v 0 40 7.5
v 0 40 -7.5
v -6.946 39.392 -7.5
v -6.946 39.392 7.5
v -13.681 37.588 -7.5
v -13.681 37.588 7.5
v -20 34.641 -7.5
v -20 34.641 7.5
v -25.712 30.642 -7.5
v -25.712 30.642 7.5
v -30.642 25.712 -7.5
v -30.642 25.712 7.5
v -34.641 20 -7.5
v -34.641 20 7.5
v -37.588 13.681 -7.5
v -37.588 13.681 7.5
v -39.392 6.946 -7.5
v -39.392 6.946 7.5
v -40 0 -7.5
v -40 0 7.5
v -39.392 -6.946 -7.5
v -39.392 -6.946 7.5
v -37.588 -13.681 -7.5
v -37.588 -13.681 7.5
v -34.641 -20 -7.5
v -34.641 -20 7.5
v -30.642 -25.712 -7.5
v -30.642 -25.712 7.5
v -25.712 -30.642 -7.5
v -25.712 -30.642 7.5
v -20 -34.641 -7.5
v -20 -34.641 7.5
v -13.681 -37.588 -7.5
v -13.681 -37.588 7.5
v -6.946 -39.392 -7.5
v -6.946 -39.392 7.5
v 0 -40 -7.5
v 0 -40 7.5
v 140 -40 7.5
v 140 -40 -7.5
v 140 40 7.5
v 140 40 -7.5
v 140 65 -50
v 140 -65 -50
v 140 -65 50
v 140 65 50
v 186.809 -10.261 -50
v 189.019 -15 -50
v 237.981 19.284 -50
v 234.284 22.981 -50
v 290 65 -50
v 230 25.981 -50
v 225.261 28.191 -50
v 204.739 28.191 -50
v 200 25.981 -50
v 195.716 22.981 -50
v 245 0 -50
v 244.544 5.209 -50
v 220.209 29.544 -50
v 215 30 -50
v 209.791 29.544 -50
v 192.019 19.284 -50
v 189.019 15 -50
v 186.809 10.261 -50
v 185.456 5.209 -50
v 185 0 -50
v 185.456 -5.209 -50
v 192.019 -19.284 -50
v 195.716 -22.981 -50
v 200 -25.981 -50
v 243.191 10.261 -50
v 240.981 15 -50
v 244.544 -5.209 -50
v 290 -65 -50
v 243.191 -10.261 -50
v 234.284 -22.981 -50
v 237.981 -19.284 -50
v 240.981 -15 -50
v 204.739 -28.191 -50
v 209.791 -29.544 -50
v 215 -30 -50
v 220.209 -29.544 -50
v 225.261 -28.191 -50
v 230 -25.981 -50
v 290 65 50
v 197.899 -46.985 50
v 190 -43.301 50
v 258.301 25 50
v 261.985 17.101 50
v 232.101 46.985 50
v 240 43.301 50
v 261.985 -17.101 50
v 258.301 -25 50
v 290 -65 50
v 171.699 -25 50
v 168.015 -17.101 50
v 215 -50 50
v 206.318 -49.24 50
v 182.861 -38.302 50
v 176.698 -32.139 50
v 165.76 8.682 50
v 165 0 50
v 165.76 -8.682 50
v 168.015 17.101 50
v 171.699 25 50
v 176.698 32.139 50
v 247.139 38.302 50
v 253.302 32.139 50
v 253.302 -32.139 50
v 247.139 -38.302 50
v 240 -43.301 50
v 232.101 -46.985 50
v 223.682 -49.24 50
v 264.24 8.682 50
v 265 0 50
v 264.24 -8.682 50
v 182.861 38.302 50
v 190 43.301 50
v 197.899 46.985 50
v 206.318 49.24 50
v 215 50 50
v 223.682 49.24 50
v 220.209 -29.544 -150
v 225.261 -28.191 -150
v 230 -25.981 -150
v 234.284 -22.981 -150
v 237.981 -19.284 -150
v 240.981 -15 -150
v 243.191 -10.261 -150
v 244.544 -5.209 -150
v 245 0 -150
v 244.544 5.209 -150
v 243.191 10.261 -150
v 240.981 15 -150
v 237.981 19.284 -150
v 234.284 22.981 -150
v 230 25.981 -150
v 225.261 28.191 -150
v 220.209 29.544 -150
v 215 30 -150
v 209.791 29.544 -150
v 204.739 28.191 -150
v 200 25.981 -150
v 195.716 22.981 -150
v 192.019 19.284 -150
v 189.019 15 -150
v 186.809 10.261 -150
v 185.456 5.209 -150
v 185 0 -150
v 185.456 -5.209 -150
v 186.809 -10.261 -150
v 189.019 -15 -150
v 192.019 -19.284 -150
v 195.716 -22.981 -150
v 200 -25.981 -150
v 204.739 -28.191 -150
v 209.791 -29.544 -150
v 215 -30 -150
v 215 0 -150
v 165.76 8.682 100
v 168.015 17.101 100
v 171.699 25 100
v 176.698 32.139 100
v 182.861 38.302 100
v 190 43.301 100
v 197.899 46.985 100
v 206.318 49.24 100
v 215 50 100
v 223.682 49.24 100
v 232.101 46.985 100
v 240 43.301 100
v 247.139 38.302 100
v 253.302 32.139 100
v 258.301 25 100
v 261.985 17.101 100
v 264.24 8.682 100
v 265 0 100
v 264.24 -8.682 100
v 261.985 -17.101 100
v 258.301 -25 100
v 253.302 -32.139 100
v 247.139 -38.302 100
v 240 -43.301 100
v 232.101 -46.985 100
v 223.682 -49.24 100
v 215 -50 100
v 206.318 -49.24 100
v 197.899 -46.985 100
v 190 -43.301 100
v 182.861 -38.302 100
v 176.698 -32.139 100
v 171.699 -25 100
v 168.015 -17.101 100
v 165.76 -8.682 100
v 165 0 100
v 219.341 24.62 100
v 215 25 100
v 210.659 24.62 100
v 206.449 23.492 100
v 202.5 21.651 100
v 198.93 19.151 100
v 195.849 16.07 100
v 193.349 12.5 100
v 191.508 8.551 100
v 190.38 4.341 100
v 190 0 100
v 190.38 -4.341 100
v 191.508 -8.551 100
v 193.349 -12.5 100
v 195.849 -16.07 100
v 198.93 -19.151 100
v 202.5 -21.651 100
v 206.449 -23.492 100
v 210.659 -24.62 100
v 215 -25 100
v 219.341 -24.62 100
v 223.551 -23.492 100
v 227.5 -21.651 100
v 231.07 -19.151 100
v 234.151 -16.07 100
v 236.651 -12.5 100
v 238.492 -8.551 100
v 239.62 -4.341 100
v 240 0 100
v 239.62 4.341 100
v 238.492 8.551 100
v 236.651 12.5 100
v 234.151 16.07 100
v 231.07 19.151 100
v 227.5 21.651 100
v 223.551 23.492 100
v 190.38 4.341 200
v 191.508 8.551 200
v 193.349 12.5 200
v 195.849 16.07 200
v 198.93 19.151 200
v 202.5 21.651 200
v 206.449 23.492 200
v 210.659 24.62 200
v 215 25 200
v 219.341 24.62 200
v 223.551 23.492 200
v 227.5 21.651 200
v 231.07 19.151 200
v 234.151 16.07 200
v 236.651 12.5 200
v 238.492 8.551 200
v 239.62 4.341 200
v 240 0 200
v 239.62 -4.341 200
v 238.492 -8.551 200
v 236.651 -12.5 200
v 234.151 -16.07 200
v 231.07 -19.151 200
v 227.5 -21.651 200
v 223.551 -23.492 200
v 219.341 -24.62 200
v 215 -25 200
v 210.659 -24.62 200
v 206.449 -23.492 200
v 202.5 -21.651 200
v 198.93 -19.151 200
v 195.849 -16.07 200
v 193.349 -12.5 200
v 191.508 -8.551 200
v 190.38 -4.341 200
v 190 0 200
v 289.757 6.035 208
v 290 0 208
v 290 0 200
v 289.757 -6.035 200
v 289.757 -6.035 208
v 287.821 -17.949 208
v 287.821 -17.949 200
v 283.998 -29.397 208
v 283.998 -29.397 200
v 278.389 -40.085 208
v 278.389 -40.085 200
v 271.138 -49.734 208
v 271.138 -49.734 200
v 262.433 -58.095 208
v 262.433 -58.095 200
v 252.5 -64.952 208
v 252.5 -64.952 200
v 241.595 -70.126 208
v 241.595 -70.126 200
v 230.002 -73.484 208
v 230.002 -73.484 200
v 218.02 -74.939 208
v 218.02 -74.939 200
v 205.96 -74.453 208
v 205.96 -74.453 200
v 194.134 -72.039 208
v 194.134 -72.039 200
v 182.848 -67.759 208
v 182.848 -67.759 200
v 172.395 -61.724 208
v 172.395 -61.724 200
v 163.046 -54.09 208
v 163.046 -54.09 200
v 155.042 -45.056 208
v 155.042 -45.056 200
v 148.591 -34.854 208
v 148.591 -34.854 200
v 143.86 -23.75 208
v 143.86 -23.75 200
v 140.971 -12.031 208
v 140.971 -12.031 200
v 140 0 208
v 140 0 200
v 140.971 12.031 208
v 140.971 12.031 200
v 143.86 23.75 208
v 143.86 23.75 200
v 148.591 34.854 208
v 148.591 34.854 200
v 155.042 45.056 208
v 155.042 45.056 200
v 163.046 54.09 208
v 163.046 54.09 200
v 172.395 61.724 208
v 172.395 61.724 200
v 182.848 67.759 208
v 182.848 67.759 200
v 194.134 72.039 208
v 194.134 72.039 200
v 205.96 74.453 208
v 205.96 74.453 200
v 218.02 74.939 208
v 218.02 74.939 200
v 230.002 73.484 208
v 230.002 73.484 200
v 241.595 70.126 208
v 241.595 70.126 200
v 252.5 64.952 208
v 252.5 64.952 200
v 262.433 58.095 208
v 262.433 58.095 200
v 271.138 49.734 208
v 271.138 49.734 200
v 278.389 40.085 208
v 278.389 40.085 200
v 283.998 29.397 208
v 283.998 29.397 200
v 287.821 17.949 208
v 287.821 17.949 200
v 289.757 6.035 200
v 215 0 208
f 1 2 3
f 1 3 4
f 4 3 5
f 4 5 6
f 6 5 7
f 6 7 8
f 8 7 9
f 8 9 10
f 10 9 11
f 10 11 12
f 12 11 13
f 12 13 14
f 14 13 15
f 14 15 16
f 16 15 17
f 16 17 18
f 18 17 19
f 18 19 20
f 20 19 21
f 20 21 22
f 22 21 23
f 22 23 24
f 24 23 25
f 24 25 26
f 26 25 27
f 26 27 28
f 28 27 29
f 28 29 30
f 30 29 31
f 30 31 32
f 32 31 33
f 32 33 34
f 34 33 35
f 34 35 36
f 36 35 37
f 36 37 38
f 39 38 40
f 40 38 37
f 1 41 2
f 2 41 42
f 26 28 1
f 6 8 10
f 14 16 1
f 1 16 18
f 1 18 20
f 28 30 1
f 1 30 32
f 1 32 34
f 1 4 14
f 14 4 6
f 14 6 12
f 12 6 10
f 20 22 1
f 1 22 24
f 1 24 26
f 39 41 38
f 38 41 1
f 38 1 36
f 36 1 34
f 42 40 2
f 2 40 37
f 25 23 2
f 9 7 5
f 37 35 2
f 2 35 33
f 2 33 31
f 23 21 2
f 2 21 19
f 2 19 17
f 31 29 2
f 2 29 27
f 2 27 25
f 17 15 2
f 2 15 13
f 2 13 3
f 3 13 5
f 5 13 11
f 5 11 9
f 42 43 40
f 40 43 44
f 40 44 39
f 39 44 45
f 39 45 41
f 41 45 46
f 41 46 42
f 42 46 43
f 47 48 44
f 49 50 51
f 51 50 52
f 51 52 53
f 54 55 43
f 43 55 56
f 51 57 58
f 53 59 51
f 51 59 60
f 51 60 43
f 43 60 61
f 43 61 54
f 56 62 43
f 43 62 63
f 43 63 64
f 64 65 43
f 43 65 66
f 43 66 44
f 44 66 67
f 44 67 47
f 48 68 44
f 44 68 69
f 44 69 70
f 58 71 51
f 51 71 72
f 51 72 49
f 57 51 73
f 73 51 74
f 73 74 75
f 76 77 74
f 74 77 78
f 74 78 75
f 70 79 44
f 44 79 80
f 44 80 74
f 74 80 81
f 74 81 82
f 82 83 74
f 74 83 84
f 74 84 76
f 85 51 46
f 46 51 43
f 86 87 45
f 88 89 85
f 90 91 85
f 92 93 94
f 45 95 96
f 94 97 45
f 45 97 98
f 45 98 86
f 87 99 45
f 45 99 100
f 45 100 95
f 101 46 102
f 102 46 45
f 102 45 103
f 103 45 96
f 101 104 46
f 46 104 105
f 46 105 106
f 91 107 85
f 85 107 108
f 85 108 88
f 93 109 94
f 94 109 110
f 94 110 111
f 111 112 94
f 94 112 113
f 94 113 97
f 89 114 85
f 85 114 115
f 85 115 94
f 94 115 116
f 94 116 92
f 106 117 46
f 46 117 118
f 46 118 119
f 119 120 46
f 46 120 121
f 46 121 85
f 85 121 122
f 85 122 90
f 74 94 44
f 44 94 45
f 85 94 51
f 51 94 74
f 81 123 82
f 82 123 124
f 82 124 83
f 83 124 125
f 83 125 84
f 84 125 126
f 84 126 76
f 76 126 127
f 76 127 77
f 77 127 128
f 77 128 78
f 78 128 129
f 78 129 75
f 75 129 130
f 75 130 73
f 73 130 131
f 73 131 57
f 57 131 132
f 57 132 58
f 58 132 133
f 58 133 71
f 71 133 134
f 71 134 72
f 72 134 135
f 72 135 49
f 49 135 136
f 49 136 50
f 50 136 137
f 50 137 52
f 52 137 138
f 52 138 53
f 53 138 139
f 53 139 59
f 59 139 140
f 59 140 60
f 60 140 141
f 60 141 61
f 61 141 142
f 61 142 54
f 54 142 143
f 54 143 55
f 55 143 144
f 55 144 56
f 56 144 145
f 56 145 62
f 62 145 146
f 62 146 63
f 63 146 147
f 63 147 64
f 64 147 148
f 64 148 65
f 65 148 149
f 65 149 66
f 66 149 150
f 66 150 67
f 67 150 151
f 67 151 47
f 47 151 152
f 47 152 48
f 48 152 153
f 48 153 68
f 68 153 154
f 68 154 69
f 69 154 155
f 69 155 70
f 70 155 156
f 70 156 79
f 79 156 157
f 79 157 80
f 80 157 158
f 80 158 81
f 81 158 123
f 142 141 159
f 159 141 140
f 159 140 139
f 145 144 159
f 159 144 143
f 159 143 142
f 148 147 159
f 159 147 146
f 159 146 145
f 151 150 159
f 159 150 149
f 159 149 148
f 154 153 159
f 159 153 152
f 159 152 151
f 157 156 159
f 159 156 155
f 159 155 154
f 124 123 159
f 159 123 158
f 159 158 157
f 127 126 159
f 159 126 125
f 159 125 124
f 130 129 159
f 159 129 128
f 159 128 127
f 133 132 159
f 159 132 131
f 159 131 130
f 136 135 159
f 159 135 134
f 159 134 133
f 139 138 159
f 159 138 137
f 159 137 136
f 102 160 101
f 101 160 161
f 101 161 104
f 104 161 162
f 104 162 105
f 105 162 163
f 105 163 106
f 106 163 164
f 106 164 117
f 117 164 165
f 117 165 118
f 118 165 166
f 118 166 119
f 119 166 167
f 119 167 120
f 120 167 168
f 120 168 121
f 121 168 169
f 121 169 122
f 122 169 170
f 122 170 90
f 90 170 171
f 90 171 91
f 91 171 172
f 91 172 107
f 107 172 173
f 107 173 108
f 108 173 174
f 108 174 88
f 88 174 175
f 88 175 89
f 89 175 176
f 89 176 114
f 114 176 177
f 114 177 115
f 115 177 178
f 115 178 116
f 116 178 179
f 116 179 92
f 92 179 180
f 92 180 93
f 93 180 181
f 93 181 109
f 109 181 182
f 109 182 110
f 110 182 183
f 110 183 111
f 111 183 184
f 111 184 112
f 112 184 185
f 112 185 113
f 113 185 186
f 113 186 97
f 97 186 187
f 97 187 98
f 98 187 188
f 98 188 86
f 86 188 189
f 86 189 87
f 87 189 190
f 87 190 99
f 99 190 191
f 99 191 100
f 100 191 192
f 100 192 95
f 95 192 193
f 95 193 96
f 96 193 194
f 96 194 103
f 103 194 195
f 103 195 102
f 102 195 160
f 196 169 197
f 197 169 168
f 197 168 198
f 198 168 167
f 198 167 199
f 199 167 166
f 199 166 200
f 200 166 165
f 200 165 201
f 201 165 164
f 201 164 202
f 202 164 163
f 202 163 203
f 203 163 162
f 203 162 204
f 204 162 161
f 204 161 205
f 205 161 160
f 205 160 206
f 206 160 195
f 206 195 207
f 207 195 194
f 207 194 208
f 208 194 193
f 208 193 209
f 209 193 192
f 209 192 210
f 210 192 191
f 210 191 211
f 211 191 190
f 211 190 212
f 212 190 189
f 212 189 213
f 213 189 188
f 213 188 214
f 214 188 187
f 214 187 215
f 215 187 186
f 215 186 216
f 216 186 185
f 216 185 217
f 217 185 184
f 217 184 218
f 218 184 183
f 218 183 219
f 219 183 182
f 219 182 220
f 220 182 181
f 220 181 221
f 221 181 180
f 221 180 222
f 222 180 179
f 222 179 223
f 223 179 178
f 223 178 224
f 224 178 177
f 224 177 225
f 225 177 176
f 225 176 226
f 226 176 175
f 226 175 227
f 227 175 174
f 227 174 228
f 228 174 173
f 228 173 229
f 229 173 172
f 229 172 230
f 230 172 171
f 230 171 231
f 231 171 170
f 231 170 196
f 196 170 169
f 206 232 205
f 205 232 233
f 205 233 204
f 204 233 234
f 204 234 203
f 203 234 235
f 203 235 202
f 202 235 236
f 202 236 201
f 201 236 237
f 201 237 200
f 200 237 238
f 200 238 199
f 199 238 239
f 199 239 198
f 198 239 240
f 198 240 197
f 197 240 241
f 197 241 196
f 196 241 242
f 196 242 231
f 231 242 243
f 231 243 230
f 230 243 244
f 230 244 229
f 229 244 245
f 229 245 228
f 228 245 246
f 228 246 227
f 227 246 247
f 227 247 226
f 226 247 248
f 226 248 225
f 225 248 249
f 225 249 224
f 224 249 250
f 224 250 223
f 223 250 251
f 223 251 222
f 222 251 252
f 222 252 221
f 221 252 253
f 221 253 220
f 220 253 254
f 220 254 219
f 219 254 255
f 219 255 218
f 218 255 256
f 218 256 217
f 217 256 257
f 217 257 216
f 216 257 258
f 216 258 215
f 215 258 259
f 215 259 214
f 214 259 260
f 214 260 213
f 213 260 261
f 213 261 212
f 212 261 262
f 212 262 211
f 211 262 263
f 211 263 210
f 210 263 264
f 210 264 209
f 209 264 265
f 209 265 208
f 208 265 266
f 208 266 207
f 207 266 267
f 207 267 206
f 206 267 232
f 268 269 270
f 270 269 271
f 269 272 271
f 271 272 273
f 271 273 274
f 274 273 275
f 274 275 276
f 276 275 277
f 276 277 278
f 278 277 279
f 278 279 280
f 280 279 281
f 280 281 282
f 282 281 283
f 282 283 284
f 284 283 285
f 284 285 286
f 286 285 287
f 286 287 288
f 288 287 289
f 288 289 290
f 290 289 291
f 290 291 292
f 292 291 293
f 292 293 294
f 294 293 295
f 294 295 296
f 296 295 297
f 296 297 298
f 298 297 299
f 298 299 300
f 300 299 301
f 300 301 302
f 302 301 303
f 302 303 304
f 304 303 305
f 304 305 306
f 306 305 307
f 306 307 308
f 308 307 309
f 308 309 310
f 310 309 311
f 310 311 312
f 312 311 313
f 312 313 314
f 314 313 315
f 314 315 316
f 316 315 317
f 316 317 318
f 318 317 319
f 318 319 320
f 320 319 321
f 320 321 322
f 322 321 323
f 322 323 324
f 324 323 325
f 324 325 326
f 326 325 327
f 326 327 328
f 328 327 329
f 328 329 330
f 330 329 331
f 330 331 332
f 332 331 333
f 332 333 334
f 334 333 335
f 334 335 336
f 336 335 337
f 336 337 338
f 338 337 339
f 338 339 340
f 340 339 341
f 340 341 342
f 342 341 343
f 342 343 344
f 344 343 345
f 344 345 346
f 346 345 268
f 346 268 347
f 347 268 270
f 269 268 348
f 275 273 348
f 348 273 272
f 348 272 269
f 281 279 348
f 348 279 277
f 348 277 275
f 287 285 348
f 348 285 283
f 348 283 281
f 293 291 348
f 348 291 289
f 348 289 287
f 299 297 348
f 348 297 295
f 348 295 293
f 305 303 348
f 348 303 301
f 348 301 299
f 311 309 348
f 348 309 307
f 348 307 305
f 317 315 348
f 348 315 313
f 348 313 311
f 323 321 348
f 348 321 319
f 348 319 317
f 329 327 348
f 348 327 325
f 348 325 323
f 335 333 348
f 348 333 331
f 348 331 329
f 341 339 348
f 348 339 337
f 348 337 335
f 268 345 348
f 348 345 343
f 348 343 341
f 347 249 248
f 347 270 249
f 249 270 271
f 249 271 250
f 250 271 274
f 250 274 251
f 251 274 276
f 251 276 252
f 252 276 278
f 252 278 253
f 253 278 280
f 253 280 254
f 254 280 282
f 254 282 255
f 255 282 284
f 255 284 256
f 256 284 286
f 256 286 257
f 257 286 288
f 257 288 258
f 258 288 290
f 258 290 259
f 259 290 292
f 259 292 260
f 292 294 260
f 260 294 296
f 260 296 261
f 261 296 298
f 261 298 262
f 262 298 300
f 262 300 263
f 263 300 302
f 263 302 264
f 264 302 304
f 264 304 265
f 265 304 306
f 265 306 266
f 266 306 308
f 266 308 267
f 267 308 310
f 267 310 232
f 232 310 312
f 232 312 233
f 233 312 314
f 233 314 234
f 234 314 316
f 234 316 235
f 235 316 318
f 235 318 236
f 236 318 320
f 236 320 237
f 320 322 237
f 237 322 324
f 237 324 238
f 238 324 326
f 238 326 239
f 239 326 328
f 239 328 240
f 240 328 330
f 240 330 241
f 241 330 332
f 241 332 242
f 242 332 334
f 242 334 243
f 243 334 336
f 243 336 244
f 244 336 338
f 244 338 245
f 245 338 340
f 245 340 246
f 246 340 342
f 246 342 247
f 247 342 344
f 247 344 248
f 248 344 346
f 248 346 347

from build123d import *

# Parameters (mm, degrees)
BOSS_EXTRUDE1_DEPTH = 7.5
SKETCH3_W           = 100
SKETCH3_H           = 130
BOSS_EXTRUDE2_DEPTH = 150
SKETCH4_R           = 30
BOSS_EXTRUDE3_DEPTH = 100
SKETCH5_R           = 50
BOSS_EXTRUDE4_DEPTH = 50
SKETCH6_R           = 25
BOSS_EXTRUDE5_DEPTH = 100
SKETCH7_R           = 75
BOSS_EXTRUDE6_DEPTH = 8


with BuildPart() as part:
    # Sketch1 → Boss-Extrude1 (new body, symmetric)
    with BuildSketch(Plane.XY):
        with BuildLine():
            Line((0, 40), (140, 40))
            Line((140, 40), (140, -40))
            Line((140, -40), (0, -40))
            ThreePointArc((0, -40), (-40, 0), (0, 40))
        make_face()
    extrude(amount=BOSS_EXTRUDE1_DEPTH, both=True)

    # Sketch3 → Boss-Extrude2 (add)
    with BuildSketch(Plane(origin=(140, 0, 0), x_dir=(0, 0, -1), z_dir=(1, 0, 0))):
        Rectangle(SKETCH3_W, SKETCH3_H)
    extrude(amount=BOSS_EXTRUDE2_DEPTH)

    # Sketch4 → Boss-Extrude3 (add)
    with BuildSketch(Plane(origin=(0, 0, -50), x_dir=(-1, 0, 0), z_dir=(0, 0, -1))):
        with Locations((-215, 0)):
            Circle(SKETCH4_R)
    extrude(amount=BOSS_EXTRUDE3_DEPTH)

    # Sketch5 → Boss-Extrude4 (add)
    with BuildSketch(Plane.XY.offset(50)):
        with Locations((215, 0)):
            Circle(SKETCH5_R)
    extrude(amount=BOSS_EXTRUDE4_DEPTH)

    # Sketch6 → Boss-Extrude5 (add)
    with BuildSketch(Plane.XY.offset(100)):
        with Locations((215, 0)):
            Circle(SKETCH6_R)
    extrude(amount=BOSS_EXTRUDE5_DEPTH)

    # Sketch7 → Boss-Extrude6 (add)
    with BuildSketch(Plane.XY.offset(200)):
        with Locations((215, 0)):
            Circle(SKETCH7_R)
    extrude(amount=BOSS_EXTRUDE6_DEPTH)


solid = part.part
